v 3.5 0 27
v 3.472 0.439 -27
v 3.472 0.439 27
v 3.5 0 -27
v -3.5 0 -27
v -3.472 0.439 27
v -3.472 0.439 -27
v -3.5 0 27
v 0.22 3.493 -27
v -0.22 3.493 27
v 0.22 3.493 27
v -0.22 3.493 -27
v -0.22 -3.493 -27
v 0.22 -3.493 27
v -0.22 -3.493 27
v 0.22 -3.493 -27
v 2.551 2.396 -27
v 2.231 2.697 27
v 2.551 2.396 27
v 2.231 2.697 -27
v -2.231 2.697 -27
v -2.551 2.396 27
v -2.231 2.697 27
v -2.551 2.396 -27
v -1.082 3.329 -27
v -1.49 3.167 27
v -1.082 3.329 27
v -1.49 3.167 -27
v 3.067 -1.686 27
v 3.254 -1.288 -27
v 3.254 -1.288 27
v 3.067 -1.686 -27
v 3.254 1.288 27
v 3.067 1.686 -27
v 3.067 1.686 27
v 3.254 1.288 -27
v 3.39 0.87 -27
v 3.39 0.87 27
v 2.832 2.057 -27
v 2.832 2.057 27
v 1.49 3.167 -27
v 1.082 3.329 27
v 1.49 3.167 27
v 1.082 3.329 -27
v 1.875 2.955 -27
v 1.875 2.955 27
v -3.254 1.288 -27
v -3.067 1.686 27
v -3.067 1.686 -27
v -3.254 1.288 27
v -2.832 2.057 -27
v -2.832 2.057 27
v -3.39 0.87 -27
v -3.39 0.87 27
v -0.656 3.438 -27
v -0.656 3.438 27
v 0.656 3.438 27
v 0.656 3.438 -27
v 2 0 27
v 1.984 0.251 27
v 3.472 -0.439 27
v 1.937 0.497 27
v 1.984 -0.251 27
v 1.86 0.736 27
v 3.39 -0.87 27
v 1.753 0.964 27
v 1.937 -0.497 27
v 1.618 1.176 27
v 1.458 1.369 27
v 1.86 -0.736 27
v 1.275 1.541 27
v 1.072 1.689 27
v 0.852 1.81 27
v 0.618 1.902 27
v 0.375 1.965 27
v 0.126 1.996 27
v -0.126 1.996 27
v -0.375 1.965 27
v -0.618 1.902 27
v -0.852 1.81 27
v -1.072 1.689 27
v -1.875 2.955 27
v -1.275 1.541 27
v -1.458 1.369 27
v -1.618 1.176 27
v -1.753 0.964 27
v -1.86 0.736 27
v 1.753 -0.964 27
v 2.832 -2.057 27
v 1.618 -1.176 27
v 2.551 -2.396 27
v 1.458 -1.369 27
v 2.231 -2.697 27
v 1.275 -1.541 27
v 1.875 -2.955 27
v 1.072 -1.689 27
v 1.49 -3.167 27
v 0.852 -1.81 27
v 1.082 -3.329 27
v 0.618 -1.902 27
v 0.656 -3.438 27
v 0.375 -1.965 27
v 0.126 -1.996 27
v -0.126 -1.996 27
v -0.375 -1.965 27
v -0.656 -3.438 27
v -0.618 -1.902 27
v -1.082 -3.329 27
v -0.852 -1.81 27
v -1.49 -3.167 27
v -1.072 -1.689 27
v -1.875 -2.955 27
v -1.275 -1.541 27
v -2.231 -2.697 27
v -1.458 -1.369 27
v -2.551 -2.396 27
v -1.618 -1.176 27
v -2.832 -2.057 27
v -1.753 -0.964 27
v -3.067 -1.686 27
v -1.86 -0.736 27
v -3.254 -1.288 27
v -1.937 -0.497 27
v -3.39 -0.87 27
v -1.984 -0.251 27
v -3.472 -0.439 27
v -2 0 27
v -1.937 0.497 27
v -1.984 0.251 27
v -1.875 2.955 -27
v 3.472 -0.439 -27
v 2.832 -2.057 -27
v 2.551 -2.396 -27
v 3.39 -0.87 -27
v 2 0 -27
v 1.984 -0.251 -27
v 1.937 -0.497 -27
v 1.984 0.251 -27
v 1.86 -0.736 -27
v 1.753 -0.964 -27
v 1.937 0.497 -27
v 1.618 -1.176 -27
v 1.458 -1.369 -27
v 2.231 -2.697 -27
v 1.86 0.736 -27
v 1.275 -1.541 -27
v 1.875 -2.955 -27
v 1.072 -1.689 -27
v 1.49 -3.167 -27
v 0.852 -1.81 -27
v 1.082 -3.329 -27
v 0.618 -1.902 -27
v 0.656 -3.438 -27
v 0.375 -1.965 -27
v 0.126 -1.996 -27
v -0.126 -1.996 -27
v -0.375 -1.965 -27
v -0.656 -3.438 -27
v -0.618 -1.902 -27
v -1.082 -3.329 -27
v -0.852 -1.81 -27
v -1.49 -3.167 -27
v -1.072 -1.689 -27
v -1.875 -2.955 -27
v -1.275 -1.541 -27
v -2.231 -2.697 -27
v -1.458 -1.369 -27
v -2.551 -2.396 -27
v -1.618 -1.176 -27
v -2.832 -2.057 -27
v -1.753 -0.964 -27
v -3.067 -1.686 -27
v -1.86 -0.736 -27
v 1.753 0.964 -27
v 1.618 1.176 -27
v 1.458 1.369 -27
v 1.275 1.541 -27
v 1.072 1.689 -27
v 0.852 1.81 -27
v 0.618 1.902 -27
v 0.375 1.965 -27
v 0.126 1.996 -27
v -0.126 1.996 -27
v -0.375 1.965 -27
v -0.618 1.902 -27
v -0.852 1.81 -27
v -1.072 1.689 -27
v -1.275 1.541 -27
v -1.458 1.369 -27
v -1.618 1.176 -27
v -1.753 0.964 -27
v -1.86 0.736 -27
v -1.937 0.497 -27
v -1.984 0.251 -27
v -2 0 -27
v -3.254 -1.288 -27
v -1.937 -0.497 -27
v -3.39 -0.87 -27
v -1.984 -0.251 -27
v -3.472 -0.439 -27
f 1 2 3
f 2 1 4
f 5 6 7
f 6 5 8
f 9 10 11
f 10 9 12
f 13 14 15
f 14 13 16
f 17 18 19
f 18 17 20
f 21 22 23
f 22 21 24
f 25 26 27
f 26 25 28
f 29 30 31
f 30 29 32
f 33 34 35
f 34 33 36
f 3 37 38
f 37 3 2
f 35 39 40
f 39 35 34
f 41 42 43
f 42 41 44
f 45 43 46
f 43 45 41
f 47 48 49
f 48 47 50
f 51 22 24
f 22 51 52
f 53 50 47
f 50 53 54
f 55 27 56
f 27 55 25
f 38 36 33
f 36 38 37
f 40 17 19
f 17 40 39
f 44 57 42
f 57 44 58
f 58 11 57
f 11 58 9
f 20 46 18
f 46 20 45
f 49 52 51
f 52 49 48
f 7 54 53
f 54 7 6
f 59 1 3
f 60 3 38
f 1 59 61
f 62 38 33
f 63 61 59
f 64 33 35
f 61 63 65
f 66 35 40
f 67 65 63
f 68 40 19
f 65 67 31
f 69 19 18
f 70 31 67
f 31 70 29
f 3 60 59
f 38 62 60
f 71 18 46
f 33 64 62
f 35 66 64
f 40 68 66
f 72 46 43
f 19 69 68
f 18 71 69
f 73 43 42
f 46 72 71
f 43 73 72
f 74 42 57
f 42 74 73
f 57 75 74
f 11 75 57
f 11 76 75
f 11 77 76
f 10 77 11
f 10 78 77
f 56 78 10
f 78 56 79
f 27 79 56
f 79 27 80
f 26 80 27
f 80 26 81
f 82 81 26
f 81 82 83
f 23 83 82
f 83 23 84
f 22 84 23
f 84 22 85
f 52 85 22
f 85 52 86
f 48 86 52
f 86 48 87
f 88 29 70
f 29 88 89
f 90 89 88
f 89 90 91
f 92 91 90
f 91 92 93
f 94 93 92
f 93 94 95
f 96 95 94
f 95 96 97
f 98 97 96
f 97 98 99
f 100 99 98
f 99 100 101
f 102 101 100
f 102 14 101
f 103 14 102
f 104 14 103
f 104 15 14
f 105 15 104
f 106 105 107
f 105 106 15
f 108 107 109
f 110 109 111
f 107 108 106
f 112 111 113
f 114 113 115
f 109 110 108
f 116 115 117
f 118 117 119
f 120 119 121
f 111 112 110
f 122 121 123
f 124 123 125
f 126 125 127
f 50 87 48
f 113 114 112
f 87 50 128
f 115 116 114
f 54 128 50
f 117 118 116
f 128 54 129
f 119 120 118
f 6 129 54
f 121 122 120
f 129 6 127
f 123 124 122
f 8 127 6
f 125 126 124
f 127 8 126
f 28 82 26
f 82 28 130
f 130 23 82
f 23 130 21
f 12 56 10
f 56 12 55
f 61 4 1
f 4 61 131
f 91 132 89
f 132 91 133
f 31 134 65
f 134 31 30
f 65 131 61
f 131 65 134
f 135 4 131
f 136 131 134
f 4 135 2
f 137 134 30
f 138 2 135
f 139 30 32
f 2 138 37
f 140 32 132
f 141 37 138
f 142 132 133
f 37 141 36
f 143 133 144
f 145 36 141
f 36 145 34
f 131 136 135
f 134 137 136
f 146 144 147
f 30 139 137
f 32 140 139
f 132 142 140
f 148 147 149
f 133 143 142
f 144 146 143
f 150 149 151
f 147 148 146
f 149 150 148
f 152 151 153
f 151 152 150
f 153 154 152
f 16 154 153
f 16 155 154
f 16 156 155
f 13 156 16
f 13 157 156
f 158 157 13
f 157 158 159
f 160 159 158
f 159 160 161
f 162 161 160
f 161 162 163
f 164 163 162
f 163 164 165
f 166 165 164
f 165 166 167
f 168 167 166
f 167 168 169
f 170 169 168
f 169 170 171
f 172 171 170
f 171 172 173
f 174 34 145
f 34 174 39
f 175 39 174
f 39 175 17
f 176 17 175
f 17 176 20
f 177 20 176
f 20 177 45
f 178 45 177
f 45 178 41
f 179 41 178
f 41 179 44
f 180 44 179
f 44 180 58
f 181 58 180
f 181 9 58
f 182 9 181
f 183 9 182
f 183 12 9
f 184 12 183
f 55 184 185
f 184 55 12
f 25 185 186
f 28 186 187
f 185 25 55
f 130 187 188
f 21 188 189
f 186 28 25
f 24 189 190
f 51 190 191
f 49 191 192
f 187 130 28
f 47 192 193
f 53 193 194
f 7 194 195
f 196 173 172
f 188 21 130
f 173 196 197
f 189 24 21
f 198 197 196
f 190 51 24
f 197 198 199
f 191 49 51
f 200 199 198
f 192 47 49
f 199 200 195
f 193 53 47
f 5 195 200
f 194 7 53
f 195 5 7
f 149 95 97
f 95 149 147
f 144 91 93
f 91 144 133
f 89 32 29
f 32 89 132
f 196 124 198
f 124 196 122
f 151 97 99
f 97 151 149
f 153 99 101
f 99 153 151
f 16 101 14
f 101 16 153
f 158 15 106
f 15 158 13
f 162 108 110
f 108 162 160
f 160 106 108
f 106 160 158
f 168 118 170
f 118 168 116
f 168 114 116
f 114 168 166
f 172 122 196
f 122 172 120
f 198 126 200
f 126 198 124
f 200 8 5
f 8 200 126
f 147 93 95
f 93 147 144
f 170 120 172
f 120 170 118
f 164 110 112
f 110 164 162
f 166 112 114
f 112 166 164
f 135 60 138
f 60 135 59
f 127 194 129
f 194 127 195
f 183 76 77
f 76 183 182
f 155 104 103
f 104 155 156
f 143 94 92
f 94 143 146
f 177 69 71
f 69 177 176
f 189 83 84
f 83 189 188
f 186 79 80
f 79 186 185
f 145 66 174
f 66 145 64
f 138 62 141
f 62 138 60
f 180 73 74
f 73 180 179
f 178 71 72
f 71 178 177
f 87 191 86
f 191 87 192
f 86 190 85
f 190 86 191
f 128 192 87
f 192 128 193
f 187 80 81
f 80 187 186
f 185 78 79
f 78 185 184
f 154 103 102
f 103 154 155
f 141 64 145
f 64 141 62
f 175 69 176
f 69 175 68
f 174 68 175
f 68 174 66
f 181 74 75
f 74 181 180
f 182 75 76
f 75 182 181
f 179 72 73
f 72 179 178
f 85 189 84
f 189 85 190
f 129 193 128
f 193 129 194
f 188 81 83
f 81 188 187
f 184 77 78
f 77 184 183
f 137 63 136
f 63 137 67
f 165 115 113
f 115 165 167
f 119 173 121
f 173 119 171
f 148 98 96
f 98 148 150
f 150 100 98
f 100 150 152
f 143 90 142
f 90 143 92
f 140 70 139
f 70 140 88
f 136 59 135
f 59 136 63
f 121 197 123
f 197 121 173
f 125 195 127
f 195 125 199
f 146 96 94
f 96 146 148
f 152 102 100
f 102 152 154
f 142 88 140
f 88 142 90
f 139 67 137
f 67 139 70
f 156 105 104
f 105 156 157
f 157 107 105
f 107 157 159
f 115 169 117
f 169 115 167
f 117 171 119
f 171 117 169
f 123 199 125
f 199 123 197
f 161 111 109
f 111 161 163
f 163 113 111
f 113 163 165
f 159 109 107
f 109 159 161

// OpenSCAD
$fn = 50;


difference() {
	union() {
		translate(v = [0, 0, -27.0000000000]) {
			cylinder(h = 54, r = 3.5000000000);
		}
	}
	union() {
		translate(v = [0, 0, -100.0000000000]) {
			cylinder(h = 200, r = 2.0000000000);
		}
	}
}
